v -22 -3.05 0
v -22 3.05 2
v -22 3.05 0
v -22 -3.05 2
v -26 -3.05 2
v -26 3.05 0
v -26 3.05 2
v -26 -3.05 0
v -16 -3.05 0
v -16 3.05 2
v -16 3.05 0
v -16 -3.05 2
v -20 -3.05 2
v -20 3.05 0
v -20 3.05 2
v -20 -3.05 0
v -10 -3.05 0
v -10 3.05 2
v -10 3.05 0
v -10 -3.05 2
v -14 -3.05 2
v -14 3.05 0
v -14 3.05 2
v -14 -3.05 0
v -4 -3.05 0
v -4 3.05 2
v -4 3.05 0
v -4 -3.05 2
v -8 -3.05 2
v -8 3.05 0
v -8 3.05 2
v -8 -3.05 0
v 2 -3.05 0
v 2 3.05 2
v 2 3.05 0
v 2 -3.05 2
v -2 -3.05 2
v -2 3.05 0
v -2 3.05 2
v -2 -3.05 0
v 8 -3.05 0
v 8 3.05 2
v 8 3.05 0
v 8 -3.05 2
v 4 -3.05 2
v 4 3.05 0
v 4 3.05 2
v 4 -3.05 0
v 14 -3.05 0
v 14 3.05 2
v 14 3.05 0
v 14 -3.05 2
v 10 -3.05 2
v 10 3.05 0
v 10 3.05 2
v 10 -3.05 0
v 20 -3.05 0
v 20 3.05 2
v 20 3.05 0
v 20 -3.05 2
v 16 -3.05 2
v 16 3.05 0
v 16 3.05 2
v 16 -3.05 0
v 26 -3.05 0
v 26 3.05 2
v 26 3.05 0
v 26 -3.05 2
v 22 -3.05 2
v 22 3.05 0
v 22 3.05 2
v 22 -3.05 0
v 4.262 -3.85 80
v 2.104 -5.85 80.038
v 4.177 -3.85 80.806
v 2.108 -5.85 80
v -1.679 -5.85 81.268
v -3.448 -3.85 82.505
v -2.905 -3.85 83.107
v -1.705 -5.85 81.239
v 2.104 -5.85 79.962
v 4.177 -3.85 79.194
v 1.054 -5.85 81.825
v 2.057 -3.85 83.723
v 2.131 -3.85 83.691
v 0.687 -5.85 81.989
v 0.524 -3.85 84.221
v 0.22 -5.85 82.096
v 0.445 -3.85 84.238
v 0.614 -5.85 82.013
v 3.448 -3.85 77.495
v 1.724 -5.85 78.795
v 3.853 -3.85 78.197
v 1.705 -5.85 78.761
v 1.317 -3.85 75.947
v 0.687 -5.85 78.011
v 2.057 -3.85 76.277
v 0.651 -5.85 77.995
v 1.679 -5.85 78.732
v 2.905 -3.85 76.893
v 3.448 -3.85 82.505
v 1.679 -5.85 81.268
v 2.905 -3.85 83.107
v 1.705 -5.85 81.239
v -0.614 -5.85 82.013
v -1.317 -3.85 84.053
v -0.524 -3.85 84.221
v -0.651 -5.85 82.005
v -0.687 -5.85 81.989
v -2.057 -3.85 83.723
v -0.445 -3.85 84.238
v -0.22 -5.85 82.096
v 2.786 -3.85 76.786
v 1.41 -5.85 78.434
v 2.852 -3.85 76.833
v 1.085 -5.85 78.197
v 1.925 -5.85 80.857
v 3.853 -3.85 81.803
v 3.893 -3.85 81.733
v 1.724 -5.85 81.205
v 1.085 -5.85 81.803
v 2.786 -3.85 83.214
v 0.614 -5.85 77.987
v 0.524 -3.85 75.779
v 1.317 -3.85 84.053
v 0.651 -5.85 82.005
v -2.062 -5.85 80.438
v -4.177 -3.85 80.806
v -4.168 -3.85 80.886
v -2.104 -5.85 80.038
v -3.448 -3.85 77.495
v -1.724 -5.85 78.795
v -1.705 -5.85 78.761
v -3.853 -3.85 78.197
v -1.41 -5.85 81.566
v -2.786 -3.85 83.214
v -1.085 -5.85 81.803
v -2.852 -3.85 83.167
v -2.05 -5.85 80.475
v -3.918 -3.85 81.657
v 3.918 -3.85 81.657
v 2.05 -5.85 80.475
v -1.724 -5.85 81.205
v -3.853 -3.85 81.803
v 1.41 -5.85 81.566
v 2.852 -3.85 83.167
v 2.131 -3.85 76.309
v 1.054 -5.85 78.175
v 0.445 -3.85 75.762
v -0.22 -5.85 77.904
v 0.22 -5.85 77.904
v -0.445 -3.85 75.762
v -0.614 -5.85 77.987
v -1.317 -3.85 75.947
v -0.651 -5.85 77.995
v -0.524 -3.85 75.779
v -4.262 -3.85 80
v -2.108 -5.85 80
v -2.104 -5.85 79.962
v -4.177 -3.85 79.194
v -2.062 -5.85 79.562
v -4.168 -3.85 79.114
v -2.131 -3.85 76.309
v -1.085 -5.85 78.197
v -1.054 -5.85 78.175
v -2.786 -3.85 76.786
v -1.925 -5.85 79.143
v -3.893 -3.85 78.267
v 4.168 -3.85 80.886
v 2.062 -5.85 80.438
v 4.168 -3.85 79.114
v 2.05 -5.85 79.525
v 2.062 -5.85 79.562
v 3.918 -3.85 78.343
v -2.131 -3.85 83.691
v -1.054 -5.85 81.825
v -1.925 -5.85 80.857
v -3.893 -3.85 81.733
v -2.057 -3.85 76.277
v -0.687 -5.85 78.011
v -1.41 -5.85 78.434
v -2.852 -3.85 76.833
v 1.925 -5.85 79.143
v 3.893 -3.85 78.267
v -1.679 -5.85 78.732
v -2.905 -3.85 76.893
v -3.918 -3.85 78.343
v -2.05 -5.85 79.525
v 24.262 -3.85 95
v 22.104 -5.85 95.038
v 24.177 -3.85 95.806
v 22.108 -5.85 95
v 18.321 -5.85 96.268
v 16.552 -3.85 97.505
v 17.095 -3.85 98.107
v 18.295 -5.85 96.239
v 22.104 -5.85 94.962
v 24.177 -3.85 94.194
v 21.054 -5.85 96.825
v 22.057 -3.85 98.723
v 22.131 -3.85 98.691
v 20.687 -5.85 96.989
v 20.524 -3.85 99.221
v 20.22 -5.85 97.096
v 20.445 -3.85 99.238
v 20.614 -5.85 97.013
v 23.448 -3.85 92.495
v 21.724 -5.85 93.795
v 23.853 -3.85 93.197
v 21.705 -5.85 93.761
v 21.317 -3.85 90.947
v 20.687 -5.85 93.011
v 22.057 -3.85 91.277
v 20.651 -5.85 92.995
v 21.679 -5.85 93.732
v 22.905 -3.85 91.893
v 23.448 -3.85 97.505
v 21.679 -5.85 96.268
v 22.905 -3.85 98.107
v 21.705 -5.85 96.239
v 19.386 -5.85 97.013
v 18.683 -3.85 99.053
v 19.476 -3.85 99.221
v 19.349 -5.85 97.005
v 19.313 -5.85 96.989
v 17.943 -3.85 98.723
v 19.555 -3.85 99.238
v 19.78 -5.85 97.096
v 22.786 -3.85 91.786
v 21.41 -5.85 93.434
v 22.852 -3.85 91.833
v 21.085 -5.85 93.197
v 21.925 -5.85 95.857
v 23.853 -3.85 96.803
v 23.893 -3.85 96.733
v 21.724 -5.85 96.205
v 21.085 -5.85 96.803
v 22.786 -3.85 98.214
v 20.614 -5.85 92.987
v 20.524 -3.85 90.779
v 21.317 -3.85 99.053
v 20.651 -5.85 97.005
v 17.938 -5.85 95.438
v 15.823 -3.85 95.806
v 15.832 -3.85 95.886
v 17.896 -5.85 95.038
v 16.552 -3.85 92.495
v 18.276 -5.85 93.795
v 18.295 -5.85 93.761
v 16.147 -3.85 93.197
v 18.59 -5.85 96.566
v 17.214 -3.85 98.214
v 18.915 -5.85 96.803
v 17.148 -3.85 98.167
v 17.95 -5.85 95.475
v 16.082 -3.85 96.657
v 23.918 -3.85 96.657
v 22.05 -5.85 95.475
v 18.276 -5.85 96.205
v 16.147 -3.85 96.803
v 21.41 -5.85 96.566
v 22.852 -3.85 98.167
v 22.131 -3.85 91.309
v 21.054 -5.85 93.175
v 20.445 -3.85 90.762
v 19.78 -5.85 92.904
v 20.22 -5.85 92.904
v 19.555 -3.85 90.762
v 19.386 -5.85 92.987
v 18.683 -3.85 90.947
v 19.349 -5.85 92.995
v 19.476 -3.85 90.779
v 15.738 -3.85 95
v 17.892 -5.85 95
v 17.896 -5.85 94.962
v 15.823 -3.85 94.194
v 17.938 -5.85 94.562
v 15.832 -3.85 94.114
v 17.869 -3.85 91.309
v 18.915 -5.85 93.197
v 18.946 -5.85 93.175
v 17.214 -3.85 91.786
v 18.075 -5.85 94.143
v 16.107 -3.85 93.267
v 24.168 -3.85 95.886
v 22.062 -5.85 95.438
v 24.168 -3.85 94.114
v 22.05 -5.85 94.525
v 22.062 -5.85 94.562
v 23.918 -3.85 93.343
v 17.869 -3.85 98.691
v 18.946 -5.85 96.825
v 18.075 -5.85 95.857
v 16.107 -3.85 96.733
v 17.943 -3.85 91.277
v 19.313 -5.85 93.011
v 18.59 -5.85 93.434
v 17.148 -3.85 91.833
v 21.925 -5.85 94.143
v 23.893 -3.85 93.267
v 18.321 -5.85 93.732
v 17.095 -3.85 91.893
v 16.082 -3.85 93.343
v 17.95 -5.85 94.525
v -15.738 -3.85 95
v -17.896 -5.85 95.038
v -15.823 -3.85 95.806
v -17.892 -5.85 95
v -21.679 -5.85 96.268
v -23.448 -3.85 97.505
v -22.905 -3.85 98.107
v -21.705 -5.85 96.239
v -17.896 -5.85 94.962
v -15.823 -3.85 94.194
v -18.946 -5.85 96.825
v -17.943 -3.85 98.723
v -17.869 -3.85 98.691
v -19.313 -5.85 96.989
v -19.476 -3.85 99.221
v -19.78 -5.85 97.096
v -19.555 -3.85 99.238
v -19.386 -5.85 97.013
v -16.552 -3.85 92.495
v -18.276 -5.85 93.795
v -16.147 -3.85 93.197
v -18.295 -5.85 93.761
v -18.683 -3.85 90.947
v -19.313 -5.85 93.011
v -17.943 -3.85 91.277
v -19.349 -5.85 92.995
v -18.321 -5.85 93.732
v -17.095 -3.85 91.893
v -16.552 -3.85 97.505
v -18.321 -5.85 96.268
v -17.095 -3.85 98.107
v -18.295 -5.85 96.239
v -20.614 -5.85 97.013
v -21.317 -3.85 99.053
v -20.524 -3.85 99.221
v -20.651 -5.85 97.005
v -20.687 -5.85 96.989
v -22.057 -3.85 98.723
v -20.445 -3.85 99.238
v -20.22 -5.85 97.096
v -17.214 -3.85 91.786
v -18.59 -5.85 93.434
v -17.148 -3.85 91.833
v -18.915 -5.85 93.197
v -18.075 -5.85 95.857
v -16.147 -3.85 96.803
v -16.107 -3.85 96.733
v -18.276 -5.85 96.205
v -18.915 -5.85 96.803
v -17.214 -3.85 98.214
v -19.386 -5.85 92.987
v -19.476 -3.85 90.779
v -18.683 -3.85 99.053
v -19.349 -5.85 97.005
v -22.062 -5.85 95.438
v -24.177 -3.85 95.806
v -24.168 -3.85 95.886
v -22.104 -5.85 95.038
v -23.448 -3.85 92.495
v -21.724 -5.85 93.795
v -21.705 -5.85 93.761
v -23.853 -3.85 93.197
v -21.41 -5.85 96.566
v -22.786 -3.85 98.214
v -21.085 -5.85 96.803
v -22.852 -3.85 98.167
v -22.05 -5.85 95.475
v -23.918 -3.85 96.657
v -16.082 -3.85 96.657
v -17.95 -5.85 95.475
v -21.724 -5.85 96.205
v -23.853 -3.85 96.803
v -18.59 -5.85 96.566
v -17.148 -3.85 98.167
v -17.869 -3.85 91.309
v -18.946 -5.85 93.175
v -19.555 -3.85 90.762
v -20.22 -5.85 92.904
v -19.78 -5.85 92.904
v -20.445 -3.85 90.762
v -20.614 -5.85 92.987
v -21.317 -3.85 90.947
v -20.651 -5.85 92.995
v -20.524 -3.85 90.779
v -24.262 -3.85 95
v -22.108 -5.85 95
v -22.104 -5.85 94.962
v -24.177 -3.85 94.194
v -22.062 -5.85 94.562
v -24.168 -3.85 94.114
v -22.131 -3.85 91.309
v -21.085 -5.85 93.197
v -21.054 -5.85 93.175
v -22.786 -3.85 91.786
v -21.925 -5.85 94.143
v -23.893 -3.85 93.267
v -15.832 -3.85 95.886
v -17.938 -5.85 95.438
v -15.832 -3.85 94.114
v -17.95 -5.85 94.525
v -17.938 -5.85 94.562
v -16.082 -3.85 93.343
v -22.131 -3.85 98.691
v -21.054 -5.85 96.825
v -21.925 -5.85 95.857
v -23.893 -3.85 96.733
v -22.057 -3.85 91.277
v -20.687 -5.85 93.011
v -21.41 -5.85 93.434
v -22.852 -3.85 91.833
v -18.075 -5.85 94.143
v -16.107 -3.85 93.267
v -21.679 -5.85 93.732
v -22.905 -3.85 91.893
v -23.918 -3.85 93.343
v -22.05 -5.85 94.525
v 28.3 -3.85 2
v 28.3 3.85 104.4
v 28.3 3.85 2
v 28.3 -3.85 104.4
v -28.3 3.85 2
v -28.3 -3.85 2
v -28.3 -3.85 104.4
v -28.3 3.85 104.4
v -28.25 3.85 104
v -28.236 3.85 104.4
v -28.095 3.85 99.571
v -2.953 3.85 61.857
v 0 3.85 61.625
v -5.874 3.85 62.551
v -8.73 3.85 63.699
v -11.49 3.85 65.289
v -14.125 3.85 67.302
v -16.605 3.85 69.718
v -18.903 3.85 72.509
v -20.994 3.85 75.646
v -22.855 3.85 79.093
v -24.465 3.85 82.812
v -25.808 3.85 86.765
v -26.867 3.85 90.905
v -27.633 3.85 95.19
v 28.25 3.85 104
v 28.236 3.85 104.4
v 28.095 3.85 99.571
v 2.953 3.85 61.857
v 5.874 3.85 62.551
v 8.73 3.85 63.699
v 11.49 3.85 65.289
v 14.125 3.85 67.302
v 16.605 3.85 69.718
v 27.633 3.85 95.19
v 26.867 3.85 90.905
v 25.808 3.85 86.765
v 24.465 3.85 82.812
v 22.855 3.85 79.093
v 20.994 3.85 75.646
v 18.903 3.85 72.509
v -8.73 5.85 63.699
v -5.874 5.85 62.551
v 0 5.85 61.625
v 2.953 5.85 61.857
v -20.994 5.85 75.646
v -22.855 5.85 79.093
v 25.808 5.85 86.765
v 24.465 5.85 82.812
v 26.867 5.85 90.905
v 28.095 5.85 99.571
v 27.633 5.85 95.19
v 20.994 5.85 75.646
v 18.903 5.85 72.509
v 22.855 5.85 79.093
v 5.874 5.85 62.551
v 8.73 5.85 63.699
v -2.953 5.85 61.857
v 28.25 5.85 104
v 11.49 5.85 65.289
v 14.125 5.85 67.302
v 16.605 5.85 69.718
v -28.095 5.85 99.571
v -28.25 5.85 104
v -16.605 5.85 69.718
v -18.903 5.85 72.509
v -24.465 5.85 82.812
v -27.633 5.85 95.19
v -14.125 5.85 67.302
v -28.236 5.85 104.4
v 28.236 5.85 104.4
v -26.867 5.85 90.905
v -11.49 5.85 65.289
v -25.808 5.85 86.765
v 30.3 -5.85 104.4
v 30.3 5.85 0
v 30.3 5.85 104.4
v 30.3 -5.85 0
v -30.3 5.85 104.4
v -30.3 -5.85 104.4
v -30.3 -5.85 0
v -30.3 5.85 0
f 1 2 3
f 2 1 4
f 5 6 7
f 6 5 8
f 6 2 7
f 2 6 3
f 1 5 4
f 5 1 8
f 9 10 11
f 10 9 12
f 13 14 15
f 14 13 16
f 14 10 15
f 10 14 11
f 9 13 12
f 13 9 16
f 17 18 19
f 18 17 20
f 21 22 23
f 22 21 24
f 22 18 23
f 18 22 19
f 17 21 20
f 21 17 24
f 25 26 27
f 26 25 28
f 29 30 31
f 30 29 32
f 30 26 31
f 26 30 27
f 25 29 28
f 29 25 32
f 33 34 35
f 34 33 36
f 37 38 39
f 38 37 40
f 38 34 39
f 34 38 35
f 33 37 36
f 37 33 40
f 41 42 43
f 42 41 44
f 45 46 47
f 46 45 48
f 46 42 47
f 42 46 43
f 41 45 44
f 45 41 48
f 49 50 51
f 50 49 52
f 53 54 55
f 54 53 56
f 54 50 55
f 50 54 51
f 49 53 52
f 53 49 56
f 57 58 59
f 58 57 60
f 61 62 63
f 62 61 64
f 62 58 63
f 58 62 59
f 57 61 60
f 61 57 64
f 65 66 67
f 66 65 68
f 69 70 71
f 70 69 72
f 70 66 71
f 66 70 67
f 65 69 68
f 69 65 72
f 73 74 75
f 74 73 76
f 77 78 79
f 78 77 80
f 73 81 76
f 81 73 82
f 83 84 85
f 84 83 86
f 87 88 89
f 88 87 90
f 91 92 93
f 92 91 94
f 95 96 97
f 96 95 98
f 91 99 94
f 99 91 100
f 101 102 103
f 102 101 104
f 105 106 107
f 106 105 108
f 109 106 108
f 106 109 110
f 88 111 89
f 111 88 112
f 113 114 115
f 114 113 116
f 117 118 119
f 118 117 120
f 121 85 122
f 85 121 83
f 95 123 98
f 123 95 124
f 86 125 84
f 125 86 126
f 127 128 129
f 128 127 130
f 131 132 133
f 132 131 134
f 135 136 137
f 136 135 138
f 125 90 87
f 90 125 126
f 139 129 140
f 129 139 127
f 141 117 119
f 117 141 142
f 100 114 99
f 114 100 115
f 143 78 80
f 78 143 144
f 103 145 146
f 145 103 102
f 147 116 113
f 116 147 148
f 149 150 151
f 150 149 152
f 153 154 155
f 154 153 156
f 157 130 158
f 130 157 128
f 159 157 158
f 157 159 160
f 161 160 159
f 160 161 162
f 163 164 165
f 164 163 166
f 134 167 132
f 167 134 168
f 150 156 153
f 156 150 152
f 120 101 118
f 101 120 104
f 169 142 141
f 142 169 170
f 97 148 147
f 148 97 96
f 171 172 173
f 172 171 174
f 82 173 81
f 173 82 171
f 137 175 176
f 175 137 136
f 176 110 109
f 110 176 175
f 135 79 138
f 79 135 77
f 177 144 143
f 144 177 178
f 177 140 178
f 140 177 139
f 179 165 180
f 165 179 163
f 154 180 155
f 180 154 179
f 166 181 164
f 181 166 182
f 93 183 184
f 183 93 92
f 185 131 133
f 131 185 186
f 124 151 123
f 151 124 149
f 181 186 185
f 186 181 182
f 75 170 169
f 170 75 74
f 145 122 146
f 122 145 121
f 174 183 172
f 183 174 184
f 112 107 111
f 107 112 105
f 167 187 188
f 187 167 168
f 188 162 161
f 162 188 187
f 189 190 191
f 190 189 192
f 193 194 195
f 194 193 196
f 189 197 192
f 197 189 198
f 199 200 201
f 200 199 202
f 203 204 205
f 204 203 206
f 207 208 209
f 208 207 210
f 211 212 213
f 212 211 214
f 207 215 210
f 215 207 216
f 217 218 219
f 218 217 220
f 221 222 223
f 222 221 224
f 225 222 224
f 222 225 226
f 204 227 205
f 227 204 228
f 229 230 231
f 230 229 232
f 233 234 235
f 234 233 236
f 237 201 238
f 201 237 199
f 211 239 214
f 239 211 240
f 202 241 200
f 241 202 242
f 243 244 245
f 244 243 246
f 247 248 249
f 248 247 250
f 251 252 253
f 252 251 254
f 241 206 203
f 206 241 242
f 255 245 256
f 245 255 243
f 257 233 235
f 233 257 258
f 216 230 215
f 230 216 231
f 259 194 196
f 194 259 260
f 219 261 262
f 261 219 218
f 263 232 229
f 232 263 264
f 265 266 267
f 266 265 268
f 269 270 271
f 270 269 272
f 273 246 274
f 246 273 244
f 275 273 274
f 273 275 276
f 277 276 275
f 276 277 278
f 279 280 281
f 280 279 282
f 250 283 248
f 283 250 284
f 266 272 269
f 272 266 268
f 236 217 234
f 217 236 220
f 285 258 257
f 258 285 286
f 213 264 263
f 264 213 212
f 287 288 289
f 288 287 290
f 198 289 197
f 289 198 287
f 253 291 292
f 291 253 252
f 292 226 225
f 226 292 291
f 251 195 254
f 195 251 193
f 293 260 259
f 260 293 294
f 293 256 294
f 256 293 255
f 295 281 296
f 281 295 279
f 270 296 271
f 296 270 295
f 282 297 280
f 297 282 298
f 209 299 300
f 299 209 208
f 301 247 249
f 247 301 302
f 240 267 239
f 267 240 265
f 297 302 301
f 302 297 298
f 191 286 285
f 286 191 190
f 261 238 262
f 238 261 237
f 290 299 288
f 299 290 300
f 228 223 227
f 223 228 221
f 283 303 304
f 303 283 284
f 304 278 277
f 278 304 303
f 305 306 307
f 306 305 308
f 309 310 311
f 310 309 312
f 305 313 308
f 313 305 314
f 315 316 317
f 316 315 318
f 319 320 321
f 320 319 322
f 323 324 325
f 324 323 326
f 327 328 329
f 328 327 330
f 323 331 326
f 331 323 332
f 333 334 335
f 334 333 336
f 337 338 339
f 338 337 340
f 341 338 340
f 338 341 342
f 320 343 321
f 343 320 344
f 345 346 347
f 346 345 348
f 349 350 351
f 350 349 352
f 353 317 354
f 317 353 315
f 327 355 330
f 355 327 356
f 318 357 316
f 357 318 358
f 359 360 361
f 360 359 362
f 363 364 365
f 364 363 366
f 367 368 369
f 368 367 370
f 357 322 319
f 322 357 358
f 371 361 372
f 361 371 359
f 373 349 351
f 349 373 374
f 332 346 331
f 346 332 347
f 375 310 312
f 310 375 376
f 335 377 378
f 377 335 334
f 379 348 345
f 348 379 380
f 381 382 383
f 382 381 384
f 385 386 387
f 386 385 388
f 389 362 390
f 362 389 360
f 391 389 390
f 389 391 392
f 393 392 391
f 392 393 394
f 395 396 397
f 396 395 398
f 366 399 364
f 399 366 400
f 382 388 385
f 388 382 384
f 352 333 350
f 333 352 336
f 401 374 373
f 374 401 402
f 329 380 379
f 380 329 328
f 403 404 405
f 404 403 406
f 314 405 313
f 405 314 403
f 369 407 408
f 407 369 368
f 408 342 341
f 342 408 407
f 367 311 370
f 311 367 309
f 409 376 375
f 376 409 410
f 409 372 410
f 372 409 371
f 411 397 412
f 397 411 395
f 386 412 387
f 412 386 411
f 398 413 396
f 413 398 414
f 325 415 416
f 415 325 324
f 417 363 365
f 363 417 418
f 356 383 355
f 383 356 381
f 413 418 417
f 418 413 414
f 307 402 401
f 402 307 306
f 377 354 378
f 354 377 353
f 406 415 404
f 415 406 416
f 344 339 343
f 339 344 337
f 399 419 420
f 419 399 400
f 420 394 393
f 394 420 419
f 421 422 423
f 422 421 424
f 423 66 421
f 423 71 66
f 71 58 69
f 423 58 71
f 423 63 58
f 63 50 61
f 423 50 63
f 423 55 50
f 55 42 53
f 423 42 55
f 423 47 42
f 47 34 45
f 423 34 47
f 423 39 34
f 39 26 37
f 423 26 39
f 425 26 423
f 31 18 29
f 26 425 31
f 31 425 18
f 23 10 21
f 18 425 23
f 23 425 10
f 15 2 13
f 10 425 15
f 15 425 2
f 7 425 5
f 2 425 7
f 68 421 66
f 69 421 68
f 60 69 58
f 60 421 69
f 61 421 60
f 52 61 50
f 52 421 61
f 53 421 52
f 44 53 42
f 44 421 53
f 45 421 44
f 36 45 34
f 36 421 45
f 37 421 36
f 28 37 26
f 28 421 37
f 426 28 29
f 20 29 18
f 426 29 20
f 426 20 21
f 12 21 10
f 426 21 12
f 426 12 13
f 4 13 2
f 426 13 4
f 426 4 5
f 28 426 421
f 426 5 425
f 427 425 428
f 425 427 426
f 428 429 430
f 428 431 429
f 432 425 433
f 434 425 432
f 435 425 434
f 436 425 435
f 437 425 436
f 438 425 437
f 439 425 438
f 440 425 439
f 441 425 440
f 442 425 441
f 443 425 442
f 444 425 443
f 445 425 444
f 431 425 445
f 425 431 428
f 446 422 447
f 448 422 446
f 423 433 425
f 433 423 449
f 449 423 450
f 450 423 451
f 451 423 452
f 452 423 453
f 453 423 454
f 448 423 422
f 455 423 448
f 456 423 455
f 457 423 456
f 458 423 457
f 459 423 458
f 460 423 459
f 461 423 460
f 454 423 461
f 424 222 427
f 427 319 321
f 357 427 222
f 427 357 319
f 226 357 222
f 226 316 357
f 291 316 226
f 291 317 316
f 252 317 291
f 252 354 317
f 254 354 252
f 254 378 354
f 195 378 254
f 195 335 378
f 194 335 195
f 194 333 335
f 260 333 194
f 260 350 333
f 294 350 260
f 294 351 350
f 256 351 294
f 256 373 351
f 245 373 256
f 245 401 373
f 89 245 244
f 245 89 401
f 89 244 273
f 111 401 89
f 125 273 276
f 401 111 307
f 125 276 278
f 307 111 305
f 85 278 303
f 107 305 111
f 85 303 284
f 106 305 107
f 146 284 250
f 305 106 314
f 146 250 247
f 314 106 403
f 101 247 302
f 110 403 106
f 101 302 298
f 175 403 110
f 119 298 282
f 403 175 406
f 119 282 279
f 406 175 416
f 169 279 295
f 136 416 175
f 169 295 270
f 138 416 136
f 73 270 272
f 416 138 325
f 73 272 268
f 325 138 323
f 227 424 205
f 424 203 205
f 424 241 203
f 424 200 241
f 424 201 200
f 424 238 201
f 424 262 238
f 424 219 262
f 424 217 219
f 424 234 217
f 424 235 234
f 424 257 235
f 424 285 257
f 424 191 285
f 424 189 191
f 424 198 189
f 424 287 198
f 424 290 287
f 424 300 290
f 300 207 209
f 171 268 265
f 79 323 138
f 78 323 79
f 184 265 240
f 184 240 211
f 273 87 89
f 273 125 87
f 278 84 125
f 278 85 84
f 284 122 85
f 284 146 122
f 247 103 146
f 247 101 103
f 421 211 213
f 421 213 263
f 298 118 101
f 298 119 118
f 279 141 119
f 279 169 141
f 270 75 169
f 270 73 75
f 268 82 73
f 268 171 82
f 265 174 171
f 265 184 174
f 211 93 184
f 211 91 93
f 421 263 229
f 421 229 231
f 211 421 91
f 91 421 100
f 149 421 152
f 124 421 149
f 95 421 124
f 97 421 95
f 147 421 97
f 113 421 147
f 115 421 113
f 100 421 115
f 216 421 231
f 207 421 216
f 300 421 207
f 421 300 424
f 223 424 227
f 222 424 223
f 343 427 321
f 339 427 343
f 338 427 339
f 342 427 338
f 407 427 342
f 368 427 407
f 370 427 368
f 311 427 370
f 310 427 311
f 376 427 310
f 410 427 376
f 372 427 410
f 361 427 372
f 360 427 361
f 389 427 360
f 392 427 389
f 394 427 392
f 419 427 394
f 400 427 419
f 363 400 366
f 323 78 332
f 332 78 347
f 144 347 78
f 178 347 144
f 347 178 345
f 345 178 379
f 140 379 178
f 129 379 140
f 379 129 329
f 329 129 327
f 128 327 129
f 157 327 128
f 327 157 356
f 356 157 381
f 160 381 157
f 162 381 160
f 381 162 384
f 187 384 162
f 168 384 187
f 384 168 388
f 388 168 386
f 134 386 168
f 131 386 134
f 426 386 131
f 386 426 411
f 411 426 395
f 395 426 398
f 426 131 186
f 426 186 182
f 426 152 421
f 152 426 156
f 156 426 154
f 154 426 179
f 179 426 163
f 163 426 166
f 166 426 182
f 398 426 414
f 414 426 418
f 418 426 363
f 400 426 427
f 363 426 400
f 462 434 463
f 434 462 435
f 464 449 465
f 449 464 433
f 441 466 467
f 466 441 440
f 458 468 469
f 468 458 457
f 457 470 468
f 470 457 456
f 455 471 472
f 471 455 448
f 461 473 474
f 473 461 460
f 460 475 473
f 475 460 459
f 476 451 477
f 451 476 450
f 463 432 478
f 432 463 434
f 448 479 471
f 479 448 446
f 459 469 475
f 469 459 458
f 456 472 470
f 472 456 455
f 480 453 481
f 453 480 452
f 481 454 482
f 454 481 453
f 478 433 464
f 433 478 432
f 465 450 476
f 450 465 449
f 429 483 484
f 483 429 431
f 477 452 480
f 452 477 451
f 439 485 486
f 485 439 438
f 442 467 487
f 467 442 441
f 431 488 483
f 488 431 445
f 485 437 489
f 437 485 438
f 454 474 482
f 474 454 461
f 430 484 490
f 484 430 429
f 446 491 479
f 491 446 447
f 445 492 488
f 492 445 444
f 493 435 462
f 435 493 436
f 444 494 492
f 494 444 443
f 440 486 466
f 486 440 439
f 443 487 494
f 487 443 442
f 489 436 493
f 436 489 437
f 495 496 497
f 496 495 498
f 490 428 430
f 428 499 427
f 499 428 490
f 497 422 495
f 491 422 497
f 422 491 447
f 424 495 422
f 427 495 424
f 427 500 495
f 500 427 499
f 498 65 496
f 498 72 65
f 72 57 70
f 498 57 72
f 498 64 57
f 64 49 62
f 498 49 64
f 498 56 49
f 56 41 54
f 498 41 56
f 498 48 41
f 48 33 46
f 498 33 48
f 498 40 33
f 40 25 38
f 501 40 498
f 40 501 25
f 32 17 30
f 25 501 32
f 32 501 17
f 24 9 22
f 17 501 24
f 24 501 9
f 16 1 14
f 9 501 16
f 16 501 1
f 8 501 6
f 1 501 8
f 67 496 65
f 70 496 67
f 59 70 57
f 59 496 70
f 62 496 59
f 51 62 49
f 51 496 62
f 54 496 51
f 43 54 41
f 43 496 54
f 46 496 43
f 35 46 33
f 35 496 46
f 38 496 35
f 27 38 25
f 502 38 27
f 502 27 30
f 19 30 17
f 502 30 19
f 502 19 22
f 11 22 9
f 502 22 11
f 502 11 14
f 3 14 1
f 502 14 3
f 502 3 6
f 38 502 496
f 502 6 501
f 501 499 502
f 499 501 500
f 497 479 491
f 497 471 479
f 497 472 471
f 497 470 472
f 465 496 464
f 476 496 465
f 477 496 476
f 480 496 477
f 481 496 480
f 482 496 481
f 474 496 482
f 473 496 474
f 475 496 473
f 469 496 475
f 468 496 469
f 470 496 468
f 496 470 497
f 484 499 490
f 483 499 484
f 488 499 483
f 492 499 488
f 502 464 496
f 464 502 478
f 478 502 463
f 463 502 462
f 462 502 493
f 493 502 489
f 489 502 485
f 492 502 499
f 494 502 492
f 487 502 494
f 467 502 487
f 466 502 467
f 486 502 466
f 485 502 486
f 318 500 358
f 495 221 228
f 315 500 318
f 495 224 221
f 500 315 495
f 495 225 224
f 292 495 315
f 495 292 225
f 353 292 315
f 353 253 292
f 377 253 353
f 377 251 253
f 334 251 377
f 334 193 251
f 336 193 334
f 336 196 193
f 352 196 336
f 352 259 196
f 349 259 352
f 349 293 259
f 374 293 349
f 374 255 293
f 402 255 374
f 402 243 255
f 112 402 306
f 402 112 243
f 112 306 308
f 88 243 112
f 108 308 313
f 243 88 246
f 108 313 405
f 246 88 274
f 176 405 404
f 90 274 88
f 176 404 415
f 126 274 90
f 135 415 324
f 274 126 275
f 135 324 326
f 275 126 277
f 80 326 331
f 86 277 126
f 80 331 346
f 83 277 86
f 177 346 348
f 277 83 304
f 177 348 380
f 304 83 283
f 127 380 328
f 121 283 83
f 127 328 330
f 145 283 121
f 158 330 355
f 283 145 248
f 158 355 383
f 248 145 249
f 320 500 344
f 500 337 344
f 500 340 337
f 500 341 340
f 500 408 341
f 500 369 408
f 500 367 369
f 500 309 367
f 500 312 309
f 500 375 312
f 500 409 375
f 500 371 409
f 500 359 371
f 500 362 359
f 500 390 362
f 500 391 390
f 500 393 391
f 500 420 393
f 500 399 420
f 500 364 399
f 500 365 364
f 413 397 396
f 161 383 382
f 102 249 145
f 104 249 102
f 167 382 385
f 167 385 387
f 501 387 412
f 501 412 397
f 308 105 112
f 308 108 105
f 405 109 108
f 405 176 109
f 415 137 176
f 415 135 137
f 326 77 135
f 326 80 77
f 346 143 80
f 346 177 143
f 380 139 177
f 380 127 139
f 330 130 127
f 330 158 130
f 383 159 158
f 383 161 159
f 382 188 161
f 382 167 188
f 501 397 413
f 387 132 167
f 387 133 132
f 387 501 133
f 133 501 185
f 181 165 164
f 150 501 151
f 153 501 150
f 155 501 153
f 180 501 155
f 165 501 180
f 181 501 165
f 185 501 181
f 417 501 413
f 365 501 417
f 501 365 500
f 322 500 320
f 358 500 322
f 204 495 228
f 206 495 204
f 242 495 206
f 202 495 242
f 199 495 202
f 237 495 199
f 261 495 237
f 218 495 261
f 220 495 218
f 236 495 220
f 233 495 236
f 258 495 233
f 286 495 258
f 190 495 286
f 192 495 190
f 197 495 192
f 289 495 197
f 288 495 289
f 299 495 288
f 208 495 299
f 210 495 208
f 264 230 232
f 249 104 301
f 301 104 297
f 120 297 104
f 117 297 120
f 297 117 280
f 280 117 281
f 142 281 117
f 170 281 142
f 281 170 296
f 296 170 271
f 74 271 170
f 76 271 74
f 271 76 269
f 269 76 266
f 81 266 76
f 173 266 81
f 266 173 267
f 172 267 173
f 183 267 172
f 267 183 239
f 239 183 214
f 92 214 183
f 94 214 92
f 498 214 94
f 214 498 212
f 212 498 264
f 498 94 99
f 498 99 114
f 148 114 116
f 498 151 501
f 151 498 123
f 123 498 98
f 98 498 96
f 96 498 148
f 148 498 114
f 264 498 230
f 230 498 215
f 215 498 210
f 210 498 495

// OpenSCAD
// A very simple mountable box to hold the remote for a 12V LED ribbon.
//
// JHH, 2022

$fn=30;
remote_w = 56;
remote_h = 124.0;
remote_d = 7.1;
remote_slop = 0.6;
wall_thickness = 2;
extra = remote_slop + (wall_thickness * 2);


module remote_model() {
  translate([0, 0, (remote_h + remote_slop) / 2]) {
    cube([remote_w + remote_slop, remote_d + remote_slop, remote_h + remote_slop], center=true);
  }
}


module remote_case() {
  translate([0, 0, (remote_h - extra - 15) / 2]) {
    cube([remote_w + extra, remote_d + extra, remote_h - extra - 15], center=true);
  }

}


module primitive_screwhead(screw_diam = 3) {
  union() {
    cylinder(r1=screw_diam * 1.2, r2=screw_diam/2, h=wall_thickness + 0.6);
    translate([0,0, screw_diam]) cylinder(d=screw_diam * 1.1, h = screw_diam * 5); 
  }
}


module screw_cutouts() {
  backout = -3.35;
  
  translate([0, backout, 80]) {
    rotate([90,0,0]) {
      primitive_screwhead(screw_diam=4);  
    }
  }
  translate([20, backout, 95]) {
    rotate([90,0,0]) {
      primitive_screwhead(screw_diam=4);  
    }
  }
  translate([-20, backout, 95]) {
    rotate([90,0,0]) {
      primitive_screwhead(screw_diam=4);  
    }
  }
}


module case_cutout() {
  difference() {
    translate([0, 0, 0]) { remote_case(); }
    union() {
      translate([0, 0, wall_thickness ]) { remote_model(); }
      translate([0, 6, remote_h - 20]) {
        scale([1,1,1.5]) { 
          rotate([90,90,0]){
            cylinder(h=3, d = remote_w + 0.5, $fn=60); 
          }
        }
      }
      
      translate([-remote_w / 2 + wall_thickness + 2, 0, 0]) {
        for (a = [0: 6: 48]) {
          translate([a, 0, -6 + wall_thickness * 2]) { 
            cube ([4, remote_d -1, 30], center = true) ; 
          }
        }
      }
      screw_cutouts();
    }
  }
}

case_cutout();
